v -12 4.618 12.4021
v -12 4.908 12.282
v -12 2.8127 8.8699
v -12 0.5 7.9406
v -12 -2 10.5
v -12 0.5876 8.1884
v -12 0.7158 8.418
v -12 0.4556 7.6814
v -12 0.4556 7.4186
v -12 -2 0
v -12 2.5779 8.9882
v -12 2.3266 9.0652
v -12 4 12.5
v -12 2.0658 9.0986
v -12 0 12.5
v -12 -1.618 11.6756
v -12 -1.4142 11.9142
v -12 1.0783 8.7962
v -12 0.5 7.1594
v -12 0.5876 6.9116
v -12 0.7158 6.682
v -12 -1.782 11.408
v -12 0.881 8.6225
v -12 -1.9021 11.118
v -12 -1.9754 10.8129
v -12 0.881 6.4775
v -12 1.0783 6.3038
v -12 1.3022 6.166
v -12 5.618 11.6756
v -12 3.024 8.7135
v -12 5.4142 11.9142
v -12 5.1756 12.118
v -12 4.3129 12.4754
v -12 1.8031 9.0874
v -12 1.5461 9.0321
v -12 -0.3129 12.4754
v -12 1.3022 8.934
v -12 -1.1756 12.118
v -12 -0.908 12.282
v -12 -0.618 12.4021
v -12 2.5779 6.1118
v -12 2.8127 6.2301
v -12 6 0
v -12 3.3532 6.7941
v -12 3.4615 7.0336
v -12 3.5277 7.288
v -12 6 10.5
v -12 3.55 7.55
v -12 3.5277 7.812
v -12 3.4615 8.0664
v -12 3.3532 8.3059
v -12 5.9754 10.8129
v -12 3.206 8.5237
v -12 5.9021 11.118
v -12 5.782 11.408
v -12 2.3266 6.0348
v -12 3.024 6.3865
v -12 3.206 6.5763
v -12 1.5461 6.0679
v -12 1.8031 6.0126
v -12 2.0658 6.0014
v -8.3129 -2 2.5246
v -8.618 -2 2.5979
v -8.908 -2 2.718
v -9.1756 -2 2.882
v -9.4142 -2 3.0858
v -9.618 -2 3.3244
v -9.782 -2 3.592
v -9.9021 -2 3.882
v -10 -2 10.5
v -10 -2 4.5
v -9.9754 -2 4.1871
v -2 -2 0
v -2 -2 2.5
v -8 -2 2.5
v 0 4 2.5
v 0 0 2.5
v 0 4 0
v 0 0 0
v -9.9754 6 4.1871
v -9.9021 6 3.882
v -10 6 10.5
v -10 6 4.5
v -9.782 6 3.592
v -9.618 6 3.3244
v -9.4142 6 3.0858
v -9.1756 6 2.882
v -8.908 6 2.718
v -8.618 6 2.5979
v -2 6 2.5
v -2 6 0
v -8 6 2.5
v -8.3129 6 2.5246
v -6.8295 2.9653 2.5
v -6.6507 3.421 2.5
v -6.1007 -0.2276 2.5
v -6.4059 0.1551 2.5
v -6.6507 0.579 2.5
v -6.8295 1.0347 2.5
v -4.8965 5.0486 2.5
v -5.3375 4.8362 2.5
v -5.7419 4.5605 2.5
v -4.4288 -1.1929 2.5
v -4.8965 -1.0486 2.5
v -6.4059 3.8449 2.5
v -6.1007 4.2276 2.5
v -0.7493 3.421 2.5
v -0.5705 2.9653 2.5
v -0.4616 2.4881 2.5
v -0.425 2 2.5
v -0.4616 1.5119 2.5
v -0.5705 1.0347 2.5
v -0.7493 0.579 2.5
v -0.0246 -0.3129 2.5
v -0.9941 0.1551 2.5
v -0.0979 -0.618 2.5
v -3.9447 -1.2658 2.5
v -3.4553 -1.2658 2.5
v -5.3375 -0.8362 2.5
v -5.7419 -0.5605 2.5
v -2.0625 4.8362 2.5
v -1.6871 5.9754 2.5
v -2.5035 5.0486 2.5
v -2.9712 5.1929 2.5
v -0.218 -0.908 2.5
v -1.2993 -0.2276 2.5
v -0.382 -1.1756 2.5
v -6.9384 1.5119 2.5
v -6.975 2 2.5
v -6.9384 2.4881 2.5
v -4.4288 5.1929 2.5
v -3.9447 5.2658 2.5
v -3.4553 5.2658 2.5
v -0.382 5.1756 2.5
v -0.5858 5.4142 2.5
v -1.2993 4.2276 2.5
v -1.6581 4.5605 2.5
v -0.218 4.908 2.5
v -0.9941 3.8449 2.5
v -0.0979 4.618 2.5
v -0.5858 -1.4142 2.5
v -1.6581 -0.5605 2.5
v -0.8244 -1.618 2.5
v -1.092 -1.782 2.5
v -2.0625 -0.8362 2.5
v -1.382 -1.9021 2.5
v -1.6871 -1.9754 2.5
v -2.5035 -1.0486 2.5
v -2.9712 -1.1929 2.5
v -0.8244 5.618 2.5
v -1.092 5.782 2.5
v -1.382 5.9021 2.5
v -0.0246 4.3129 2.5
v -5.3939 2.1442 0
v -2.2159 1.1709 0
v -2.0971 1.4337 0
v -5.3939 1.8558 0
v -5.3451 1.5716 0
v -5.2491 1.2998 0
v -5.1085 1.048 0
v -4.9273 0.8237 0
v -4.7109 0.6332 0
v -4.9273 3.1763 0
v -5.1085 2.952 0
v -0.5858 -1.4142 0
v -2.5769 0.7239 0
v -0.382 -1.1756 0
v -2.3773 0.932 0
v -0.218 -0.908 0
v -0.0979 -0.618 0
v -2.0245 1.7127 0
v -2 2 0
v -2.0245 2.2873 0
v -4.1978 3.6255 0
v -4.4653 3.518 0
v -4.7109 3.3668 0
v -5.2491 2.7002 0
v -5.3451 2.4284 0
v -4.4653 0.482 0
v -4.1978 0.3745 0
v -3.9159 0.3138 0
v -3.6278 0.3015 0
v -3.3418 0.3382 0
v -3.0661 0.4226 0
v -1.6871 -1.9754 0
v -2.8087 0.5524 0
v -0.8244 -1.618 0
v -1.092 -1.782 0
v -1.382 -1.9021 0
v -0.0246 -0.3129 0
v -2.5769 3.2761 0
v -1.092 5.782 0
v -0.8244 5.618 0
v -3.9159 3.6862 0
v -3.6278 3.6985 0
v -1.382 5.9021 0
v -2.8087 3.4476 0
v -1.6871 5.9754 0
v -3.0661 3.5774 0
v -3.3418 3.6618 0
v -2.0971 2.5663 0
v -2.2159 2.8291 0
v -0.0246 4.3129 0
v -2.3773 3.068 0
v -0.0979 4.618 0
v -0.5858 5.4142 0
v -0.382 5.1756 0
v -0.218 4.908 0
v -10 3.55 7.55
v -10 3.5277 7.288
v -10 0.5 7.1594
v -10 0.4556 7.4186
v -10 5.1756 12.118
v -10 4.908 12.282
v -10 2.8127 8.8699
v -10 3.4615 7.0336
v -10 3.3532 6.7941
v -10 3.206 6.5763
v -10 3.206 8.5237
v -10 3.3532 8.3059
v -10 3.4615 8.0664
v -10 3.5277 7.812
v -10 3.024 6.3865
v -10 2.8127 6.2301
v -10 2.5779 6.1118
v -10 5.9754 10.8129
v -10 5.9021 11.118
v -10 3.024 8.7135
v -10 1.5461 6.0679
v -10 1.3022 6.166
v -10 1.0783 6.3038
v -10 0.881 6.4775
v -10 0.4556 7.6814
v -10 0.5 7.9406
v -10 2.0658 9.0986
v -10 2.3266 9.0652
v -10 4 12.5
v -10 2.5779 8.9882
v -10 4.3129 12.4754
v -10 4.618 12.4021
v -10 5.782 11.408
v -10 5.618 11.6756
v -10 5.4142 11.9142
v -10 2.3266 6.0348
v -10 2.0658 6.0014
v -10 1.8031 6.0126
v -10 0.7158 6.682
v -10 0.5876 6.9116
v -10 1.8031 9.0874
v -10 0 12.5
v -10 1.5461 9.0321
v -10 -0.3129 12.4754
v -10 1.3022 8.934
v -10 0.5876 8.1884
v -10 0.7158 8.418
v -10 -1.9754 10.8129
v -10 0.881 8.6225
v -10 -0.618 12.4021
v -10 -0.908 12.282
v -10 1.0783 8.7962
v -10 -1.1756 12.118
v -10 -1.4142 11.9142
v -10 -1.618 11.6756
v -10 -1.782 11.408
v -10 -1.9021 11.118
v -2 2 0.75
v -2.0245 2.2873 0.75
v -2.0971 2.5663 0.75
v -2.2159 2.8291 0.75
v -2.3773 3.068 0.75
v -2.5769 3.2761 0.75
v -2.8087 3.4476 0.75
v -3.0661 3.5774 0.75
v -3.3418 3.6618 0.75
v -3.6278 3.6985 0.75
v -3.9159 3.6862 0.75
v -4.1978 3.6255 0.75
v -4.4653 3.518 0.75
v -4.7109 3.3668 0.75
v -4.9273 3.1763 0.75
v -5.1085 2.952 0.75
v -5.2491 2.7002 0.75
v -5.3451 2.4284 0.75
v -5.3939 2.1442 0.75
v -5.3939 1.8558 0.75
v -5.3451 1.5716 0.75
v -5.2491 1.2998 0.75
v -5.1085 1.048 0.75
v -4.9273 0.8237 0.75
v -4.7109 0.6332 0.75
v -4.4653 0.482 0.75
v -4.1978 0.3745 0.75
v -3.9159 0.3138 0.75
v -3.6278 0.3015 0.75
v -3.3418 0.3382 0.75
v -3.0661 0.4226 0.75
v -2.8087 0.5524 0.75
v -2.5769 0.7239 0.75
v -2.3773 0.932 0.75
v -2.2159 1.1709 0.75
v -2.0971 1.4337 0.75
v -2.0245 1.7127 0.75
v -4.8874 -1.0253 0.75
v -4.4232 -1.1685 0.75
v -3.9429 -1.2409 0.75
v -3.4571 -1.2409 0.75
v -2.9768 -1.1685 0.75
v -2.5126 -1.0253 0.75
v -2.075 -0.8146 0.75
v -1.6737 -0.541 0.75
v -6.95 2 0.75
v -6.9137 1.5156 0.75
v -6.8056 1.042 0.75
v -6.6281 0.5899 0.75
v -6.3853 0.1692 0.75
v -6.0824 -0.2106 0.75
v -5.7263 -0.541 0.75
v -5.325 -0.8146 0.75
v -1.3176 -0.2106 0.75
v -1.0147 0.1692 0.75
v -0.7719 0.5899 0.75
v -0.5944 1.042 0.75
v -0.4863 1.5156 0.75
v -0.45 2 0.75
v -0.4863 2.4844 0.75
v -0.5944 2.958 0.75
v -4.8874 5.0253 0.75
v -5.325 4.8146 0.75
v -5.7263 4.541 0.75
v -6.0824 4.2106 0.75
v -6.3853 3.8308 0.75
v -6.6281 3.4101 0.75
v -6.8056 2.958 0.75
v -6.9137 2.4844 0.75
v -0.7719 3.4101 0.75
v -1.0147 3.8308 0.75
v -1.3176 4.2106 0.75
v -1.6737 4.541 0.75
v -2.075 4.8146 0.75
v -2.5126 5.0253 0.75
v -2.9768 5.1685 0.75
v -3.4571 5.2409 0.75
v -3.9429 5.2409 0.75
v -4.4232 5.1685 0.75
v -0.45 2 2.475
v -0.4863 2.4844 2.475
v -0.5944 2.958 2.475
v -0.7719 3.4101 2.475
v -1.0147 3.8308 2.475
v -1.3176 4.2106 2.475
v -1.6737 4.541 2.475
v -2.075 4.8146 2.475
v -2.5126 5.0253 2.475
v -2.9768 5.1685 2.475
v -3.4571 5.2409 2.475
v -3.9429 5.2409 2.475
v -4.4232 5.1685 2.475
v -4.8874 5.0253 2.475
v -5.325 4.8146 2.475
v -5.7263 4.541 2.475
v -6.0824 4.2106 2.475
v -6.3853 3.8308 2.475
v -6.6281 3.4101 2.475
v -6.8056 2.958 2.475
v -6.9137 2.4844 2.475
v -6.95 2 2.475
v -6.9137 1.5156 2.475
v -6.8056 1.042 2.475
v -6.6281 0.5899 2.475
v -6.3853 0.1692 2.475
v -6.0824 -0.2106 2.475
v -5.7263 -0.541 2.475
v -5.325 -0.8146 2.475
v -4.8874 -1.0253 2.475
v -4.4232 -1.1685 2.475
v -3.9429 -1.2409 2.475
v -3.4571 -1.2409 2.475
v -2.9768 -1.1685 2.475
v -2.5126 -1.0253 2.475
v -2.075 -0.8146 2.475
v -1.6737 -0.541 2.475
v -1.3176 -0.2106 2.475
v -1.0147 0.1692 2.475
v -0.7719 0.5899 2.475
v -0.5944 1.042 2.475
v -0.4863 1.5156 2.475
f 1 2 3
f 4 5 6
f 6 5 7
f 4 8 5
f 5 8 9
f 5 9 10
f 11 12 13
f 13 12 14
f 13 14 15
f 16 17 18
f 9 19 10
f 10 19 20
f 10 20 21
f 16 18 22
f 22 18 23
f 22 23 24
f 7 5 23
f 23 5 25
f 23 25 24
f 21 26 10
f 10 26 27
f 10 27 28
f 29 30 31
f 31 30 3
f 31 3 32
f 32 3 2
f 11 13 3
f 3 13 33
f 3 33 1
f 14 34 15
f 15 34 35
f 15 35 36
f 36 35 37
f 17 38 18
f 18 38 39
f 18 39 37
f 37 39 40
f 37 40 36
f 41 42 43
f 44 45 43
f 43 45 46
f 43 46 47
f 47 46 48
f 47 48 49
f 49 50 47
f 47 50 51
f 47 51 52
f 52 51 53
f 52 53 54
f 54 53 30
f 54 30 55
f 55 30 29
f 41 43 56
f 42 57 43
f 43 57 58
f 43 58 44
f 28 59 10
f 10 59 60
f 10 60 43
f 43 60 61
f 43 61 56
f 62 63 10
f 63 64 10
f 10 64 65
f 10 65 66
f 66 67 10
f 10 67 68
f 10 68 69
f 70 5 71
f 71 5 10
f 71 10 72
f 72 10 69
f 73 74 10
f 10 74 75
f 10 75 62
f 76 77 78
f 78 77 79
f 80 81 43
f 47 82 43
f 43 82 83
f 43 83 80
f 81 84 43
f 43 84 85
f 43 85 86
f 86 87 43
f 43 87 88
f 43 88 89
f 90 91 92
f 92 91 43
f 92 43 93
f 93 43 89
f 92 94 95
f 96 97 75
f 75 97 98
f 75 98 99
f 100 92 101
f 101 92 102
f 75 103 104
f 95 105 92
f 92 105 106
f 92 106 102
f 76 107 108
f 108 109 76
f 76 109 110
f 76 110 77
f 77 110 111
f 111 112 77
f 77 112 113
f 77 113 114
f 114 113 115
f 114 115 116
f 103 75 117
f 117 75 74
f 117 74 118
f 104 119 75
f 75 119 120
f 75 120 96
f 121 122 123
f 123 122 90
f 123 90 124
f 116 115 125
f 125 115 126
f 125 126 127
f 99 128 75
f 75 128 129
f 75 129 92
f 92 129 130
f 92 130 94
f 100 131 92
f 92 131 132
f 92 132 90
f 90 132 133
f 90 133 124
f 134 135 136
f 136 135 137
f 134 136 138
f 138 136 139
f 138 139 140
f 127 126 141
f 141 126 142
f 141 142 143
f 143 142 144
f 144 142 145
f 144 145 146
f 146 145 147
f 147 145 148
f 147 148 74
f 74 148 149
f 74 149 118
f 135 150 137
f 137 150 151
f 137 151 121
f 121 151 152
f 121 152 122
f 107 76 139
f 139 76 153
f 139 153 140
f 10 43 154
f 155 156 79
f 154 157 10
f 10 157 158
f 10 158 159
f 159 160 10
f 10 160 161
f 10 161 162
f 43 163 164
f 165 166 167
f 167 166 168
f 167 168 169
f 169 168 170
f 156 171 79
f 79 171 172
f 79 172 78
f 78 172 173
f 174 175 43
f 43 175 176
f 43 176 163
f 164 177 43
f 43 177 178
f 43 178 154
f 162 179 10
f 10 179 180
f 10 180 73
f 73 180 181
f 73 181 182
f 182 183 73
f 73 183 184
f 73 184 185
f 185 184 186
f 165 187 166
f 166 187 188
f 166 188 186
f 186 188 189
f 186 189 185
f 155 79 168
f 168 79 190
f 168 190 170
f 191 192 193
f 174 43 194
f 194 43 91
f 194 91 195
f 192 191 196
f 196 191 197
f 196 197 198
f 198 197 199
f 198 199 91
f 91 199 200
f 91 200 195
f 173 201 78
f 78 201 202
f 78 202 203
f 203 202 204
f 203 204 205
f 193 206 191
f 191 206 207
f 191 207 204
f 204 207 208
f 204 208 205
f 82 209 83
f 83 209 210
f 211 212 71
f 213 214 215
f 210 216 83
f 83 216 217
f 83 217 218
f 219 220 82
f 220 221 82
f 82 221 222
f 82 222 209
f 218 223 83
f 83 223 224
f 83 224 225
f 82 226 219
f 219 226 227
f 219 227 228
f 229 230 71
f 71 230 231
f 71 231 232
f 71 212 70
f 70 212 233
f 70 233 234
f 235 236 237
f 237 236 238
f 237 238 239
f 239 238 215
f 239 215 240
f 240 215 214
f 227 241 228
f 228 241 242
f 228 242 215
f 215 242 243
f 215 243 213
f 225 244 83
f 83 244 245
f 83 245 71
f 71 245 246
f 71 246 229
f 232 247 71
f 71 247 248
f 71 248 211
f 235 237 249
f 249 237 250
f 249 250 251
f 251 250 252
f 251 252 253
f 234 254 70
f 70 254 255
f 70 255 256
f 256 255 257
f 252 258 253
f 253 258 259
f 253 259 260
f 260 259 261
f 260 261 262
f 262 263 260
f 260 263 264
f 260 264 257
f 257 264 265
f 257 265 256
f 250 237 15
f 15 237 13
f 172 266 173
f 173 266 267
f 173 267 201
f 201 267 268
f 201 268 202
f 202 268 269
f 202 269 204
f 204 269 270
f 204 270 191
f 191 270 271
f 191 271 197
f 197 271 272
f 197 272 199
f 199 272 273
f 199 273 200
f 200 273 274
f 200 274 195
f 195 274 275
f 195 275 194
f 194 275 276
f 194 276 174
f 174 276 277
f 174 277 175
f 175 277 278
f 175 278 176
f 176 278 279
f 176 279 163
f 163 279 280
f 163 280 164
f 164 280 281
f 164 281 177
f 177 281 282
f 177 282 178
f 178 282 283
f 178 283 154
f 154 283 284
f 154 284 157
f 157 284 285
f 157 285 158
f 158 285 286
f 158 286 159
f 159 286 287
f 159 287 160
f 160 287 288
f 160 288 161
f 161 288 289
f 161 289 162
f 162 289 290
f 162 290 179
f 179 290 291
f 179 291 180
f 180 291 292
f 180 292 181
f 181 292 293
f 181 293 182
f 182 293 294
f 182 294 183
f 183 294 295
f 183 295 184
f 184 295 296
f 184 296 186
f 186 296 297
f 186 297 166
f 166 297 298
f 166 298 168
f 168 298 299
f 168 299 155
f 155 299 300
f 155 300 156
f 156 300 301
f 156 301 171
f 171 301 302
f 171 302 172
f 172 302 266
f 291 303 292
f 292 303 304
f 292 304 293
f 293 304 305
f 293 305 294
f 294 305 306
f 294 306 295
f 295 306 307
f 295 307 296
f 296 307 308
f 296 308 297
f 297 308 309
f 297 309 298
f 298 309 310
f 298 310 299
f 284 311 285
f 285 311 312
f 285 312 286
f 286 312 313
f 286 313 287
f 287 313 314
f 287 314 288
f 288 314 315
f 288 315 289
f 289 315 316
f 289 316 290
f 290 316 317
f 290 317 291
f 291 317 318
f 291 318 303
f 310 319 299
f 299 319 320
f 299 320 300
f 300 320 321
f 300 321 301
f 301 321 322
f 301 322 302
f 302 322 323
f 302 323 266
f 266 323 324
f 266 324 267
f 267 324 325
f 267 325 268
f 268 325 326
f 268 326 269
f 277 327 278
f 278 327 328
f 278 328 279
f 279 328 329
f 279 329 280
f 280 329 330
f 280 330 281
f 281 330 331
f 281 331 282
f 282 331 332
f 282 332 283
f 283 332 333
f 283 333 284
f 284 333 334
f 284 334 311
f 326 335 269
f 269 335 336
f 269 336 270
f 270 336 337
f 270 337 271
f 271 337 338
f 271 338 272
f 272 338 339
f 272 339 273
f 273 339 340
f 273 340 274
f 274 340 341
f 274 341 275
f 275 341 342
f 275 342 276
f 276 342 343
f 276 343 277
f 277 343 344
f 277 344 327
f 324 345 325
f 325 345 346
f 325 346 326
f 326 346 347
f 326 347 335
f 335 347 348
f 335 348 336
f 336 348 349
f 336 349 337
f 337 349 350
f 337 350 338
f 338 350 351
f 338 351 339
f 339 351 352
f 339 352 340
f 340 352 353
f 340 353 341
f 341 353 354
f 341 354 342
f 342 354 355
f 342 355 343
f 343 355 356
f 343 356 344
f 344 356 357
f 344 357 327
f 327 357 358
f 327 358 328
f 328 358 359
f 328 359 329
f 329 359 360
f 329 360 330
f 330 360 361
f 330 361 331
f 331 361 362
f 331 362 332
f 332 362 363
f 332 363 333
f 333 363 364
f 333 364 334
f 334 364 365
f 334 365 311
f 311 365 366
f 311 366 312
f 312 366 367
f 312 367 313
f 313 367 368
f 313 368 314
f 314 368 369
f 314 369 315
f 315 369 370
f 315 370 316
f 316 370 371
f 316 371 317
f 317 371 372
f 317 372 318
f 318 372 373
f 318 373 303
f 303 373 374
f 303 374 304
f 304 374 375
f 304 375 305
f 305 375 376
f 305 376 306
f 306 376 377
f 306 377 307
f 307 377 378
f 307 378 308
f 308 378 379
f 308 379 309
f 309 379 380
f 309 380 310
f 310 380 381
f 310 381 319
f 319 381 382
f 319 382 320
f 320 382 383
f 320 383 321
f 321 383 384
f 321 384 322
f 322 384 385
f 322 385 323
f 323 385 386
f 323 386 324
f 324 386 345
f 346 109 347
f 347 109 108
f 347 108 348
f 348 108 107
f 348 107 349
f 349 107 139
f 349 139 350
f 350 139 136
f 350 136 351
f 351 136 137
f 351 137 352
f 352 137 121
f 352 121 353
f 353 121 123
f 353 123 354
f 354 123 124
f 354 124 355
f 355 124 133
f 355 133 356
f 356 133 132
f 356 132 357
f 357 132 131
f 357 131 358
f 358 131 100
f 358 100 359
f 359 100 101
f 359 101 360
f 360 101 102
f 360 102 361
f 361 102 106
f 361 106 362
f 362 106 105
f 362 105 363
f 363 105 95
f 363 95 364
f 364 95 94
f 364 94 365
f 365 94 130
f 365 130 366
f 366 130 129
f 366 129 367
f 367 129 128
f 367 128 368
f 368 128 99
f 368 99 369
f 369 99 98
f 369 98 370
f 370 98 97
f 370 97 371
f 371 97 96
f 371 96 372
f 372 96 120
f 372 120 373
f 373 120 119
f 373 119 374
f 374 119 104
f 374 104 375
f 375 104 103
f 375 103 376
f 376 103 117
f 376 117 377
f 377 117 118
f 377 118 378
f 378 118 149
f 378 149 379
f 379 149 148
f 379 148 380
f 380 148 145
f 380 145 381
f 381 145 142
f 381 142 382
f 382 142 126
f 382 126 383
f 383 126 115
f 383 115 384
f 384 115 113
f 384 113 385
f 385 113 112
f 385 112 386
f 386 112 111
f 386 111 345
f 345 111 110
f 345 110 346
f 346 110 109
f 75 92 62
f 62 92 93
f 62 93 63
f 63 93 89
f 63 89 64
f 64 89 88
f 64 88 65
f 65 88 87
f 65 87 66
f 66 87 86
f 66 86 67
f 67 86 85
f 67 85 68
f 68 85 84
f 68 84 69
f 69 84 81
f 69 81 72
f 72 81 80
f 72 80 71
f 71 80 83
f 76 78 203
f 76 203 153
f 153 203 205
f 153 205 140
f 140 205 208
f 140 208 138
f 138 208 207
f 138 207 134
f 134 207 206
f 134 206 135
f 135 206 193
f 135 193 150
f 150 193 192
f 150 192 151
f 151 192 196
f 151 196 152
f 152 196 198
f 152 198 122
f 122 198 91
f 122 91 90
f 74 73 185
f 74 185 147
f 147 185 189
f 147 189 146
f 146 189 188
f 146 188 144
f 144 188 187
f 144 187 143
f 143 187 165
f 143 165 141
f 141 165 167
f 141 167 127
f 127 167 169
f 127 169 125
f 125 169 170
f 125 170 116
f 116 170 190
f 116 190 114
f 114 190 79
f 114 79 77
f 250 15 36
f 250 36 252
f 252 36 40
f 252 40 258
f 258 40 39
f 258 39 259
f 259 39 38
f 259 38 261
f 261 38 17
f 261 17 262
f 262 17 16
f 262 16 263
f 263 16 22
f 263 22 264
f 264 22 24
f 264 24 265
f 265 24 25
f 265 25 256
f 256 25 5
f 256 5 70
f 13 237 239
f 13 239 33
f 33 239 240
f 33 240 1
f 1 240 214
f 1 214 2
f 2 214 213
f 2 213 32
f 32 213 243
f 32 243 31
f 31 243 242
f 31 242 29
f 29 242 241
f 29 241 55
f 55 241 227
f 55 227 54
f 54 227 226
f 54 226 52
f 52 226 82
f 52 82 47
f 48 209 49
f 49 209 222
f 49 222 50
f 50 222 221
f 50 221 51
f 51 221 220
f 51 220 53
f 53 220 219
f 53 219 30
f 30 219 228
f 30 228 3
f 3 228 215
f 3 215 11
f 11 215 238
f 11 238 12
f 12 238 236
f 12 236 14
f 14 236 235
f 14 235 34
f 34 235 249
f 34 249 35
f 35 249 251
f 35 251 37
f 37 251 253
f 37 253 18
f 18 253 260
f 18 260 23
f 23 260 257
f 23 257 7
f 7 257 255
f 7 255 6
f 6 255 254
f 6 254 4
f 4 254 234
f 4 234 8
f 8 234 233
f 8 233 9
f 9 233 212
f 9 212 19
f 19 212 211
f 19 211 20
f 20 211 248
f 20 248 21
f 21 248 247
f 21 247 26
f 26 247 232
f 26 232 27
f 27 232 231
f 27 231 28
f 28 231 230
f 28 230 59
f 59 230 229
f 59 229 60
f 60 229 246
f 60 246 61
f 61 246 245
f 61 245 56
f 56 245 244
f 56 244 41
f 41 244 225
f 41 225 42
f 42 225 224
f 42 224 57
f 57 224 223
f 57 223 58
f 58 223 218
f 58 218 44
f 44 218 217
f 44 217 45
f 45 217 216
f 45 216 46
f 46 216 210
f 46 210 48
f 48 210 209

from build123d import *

# Parameters (mm, degrees)
ESBO_O1_W                = 12
ESBO_O1_H                = 8
RESSALTO_EXTRUS_O1_DEPTH = 2.5
ESBO_O3_W                = 2
ESBO_O3_H                = 8
RESSALTO_EXTRUS_O2_DEPTH = 10
FILETE1_R                = 2
FILETE2_R                = 2
CORTE_EXTRUS_O2_REACH    = 19.095
ESBO_O6_R                = 1.55


with BuildPart() as part:
    # Esboço1 → Ressalto-extrusão1 (new body)
    with BuildSketch(Plane.XY):
        with Locations((-6, 2)):
            Rectangle(ESBO_O1_W, ESBO_O1_H)
    extrude(amount=RESSALTO_EXTRUS_O1_DEPTH)

    # Esboço3 → Ressalto-extrusão2 (add)
    with BuildSketch(Plane.XY.offset(2.5)):
        with Locations((-11, 2)):
            Rectangle(ESBO_O3_W, ESBO_O3_H)
    extrude(amount=RESSALTO_EXTRUS_O2_DEPTH)

    # Esboço10 → Rebaixo para parafuso com cabeça redonda de M33 (revolve, cut)
    with BuildSketch(Plane(origin=(-3.7, 2, 2.5), x_dir=(0, -1, 0), z_dir=(1, 0, 0))):
        Polygon((0, 0), (0, 2.5), (1.7, 2.5), (1.7, 1.75), (3.25, 1.75), (3.25, 0.025), (3.275, 0), align=None)
    revolve(axis=Axis((-3.7, 2, 8.85), (0, 0, -1)), mode=Mode.SUBTRACT)

    # Filete1
    filete1_edges = [part.edges().sort_by_distance(p)[0] for p in [
        (-10, 2, 2.5),
    ]]
    fillet(filete1_edges, radius=FILETE1_R)

    # Filete2
    filete2_edges = [part.edges().sort_by_distance(p)[0] for p in [
        (-11, -2, 12.5),
        (-11, 6, 12.5),
        (0, 6, 1.25),
        (0, -2, 1.25),
    ]]
    fillet(filete2_edges, radius=FILETE2_R)

    # Esboço6 → Corte-extrusão2 (cut, up to next)
    with BuildSketch(Plane(origin=(-10, 0, 0), x_dir=(0, 0, -1), z_dir=(1, 0, 0)), mode=Mode.PRIVATE) as corte_extrus_o2_sk1:
        with Locations(Location((-7.55, 2, 0), (0, 0, 90))):
            Circle(ESBO_O6_R)
    corte_extrus_o2_tool1 = extrude(corte_extrus_o2_sk1.sketch, amount=-CORTE_EXTRUS_O2_REACH, mode=Mode.PRIVATE) & part.part
    add(corte_extrus_o2_tool1.solids().sort_by_distance((-10, 2, 7.55))[0], mode=Mode.SUBTRACT)


solid = part.part
